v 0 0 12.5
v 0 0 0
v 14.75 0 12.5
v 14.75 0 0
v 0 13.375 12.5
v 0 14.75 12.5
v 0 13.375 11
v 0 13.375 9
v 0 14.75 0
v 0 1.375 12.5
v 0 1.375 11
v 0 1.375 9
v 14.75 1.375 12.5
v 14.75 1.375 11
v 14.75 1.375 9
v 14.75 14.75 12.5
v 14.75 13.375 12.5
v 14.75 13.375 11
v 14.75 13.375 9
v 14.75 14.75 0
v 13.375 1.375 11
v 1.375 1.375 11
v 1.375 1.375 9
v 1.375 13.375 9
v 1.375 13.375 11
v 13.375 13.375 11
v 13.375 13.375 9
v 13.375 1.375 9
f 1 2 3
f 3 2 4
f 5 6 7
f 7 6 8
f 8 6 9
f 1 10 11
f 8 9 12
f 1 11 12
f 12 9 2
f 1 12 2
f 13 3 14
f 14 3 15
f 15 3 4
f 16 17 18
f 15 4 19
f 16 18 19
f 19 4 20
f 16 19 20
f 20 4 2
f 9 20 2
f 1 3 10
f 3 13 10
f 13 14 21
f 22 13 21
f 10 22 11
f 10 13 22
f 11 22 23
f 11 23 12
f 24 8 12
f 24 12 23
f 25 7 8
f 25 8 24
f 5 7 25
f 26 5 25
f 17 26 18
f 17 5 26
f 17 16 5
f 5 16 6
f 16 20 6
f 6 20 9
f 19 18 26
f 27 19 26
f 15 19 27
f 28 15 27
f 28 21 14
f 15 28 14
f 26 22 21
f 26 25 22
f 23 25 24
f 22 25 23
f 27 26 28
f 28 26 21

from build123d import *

# Parameters (mm, degrees)
SKETCH_W        = 14.75
SKETCH_H        = 14.75
PAD_DEPTH       = 12.5
SKETCH001_W     = 14.75
SKETCH001_H     = 12
POCKET_DEPTH    = 1.5
SKETCH002_W     = 1.375
SKETCH002_H     = 12
POCKET001_DEPTH = 2


with BuildPart() as part:
    # Sketch → Pad (new body)
    with BuildSketch(Plane.XY):
        with Locations((7.375, 7.375)):
            Rectangle(SKETCH_W, SKETCH_H)
    extrude(amount=PAD_DEPTH)

    # Sketch001 → Pocket (cut)
    with BuildSketch(Plane.XY.offset(12.5)):
        with Locations((7.375, 7.375)):
            Rectangle(SKETCH001_W, SKETCH001_H)
    extrude(amount=-POCKET_DEPTH, mode=Mode.SUBTRACT)

    # Sketch002 → Pocket001 (cut)
    with BuildSketch(Plane.XY.offset(11)):
        with Locations((0.6875, 7.375)):
            Rectangle(SKETCH002_W, SKETCH002_H)
        with Locations((14.0625, 7.375)):
            Rectangle(SKETCH002_W, SKETCH002_H)
    extrude(amount=-POCKET001_DEPTH, mode=Mode.SUBTRACT)


solid = part.part
